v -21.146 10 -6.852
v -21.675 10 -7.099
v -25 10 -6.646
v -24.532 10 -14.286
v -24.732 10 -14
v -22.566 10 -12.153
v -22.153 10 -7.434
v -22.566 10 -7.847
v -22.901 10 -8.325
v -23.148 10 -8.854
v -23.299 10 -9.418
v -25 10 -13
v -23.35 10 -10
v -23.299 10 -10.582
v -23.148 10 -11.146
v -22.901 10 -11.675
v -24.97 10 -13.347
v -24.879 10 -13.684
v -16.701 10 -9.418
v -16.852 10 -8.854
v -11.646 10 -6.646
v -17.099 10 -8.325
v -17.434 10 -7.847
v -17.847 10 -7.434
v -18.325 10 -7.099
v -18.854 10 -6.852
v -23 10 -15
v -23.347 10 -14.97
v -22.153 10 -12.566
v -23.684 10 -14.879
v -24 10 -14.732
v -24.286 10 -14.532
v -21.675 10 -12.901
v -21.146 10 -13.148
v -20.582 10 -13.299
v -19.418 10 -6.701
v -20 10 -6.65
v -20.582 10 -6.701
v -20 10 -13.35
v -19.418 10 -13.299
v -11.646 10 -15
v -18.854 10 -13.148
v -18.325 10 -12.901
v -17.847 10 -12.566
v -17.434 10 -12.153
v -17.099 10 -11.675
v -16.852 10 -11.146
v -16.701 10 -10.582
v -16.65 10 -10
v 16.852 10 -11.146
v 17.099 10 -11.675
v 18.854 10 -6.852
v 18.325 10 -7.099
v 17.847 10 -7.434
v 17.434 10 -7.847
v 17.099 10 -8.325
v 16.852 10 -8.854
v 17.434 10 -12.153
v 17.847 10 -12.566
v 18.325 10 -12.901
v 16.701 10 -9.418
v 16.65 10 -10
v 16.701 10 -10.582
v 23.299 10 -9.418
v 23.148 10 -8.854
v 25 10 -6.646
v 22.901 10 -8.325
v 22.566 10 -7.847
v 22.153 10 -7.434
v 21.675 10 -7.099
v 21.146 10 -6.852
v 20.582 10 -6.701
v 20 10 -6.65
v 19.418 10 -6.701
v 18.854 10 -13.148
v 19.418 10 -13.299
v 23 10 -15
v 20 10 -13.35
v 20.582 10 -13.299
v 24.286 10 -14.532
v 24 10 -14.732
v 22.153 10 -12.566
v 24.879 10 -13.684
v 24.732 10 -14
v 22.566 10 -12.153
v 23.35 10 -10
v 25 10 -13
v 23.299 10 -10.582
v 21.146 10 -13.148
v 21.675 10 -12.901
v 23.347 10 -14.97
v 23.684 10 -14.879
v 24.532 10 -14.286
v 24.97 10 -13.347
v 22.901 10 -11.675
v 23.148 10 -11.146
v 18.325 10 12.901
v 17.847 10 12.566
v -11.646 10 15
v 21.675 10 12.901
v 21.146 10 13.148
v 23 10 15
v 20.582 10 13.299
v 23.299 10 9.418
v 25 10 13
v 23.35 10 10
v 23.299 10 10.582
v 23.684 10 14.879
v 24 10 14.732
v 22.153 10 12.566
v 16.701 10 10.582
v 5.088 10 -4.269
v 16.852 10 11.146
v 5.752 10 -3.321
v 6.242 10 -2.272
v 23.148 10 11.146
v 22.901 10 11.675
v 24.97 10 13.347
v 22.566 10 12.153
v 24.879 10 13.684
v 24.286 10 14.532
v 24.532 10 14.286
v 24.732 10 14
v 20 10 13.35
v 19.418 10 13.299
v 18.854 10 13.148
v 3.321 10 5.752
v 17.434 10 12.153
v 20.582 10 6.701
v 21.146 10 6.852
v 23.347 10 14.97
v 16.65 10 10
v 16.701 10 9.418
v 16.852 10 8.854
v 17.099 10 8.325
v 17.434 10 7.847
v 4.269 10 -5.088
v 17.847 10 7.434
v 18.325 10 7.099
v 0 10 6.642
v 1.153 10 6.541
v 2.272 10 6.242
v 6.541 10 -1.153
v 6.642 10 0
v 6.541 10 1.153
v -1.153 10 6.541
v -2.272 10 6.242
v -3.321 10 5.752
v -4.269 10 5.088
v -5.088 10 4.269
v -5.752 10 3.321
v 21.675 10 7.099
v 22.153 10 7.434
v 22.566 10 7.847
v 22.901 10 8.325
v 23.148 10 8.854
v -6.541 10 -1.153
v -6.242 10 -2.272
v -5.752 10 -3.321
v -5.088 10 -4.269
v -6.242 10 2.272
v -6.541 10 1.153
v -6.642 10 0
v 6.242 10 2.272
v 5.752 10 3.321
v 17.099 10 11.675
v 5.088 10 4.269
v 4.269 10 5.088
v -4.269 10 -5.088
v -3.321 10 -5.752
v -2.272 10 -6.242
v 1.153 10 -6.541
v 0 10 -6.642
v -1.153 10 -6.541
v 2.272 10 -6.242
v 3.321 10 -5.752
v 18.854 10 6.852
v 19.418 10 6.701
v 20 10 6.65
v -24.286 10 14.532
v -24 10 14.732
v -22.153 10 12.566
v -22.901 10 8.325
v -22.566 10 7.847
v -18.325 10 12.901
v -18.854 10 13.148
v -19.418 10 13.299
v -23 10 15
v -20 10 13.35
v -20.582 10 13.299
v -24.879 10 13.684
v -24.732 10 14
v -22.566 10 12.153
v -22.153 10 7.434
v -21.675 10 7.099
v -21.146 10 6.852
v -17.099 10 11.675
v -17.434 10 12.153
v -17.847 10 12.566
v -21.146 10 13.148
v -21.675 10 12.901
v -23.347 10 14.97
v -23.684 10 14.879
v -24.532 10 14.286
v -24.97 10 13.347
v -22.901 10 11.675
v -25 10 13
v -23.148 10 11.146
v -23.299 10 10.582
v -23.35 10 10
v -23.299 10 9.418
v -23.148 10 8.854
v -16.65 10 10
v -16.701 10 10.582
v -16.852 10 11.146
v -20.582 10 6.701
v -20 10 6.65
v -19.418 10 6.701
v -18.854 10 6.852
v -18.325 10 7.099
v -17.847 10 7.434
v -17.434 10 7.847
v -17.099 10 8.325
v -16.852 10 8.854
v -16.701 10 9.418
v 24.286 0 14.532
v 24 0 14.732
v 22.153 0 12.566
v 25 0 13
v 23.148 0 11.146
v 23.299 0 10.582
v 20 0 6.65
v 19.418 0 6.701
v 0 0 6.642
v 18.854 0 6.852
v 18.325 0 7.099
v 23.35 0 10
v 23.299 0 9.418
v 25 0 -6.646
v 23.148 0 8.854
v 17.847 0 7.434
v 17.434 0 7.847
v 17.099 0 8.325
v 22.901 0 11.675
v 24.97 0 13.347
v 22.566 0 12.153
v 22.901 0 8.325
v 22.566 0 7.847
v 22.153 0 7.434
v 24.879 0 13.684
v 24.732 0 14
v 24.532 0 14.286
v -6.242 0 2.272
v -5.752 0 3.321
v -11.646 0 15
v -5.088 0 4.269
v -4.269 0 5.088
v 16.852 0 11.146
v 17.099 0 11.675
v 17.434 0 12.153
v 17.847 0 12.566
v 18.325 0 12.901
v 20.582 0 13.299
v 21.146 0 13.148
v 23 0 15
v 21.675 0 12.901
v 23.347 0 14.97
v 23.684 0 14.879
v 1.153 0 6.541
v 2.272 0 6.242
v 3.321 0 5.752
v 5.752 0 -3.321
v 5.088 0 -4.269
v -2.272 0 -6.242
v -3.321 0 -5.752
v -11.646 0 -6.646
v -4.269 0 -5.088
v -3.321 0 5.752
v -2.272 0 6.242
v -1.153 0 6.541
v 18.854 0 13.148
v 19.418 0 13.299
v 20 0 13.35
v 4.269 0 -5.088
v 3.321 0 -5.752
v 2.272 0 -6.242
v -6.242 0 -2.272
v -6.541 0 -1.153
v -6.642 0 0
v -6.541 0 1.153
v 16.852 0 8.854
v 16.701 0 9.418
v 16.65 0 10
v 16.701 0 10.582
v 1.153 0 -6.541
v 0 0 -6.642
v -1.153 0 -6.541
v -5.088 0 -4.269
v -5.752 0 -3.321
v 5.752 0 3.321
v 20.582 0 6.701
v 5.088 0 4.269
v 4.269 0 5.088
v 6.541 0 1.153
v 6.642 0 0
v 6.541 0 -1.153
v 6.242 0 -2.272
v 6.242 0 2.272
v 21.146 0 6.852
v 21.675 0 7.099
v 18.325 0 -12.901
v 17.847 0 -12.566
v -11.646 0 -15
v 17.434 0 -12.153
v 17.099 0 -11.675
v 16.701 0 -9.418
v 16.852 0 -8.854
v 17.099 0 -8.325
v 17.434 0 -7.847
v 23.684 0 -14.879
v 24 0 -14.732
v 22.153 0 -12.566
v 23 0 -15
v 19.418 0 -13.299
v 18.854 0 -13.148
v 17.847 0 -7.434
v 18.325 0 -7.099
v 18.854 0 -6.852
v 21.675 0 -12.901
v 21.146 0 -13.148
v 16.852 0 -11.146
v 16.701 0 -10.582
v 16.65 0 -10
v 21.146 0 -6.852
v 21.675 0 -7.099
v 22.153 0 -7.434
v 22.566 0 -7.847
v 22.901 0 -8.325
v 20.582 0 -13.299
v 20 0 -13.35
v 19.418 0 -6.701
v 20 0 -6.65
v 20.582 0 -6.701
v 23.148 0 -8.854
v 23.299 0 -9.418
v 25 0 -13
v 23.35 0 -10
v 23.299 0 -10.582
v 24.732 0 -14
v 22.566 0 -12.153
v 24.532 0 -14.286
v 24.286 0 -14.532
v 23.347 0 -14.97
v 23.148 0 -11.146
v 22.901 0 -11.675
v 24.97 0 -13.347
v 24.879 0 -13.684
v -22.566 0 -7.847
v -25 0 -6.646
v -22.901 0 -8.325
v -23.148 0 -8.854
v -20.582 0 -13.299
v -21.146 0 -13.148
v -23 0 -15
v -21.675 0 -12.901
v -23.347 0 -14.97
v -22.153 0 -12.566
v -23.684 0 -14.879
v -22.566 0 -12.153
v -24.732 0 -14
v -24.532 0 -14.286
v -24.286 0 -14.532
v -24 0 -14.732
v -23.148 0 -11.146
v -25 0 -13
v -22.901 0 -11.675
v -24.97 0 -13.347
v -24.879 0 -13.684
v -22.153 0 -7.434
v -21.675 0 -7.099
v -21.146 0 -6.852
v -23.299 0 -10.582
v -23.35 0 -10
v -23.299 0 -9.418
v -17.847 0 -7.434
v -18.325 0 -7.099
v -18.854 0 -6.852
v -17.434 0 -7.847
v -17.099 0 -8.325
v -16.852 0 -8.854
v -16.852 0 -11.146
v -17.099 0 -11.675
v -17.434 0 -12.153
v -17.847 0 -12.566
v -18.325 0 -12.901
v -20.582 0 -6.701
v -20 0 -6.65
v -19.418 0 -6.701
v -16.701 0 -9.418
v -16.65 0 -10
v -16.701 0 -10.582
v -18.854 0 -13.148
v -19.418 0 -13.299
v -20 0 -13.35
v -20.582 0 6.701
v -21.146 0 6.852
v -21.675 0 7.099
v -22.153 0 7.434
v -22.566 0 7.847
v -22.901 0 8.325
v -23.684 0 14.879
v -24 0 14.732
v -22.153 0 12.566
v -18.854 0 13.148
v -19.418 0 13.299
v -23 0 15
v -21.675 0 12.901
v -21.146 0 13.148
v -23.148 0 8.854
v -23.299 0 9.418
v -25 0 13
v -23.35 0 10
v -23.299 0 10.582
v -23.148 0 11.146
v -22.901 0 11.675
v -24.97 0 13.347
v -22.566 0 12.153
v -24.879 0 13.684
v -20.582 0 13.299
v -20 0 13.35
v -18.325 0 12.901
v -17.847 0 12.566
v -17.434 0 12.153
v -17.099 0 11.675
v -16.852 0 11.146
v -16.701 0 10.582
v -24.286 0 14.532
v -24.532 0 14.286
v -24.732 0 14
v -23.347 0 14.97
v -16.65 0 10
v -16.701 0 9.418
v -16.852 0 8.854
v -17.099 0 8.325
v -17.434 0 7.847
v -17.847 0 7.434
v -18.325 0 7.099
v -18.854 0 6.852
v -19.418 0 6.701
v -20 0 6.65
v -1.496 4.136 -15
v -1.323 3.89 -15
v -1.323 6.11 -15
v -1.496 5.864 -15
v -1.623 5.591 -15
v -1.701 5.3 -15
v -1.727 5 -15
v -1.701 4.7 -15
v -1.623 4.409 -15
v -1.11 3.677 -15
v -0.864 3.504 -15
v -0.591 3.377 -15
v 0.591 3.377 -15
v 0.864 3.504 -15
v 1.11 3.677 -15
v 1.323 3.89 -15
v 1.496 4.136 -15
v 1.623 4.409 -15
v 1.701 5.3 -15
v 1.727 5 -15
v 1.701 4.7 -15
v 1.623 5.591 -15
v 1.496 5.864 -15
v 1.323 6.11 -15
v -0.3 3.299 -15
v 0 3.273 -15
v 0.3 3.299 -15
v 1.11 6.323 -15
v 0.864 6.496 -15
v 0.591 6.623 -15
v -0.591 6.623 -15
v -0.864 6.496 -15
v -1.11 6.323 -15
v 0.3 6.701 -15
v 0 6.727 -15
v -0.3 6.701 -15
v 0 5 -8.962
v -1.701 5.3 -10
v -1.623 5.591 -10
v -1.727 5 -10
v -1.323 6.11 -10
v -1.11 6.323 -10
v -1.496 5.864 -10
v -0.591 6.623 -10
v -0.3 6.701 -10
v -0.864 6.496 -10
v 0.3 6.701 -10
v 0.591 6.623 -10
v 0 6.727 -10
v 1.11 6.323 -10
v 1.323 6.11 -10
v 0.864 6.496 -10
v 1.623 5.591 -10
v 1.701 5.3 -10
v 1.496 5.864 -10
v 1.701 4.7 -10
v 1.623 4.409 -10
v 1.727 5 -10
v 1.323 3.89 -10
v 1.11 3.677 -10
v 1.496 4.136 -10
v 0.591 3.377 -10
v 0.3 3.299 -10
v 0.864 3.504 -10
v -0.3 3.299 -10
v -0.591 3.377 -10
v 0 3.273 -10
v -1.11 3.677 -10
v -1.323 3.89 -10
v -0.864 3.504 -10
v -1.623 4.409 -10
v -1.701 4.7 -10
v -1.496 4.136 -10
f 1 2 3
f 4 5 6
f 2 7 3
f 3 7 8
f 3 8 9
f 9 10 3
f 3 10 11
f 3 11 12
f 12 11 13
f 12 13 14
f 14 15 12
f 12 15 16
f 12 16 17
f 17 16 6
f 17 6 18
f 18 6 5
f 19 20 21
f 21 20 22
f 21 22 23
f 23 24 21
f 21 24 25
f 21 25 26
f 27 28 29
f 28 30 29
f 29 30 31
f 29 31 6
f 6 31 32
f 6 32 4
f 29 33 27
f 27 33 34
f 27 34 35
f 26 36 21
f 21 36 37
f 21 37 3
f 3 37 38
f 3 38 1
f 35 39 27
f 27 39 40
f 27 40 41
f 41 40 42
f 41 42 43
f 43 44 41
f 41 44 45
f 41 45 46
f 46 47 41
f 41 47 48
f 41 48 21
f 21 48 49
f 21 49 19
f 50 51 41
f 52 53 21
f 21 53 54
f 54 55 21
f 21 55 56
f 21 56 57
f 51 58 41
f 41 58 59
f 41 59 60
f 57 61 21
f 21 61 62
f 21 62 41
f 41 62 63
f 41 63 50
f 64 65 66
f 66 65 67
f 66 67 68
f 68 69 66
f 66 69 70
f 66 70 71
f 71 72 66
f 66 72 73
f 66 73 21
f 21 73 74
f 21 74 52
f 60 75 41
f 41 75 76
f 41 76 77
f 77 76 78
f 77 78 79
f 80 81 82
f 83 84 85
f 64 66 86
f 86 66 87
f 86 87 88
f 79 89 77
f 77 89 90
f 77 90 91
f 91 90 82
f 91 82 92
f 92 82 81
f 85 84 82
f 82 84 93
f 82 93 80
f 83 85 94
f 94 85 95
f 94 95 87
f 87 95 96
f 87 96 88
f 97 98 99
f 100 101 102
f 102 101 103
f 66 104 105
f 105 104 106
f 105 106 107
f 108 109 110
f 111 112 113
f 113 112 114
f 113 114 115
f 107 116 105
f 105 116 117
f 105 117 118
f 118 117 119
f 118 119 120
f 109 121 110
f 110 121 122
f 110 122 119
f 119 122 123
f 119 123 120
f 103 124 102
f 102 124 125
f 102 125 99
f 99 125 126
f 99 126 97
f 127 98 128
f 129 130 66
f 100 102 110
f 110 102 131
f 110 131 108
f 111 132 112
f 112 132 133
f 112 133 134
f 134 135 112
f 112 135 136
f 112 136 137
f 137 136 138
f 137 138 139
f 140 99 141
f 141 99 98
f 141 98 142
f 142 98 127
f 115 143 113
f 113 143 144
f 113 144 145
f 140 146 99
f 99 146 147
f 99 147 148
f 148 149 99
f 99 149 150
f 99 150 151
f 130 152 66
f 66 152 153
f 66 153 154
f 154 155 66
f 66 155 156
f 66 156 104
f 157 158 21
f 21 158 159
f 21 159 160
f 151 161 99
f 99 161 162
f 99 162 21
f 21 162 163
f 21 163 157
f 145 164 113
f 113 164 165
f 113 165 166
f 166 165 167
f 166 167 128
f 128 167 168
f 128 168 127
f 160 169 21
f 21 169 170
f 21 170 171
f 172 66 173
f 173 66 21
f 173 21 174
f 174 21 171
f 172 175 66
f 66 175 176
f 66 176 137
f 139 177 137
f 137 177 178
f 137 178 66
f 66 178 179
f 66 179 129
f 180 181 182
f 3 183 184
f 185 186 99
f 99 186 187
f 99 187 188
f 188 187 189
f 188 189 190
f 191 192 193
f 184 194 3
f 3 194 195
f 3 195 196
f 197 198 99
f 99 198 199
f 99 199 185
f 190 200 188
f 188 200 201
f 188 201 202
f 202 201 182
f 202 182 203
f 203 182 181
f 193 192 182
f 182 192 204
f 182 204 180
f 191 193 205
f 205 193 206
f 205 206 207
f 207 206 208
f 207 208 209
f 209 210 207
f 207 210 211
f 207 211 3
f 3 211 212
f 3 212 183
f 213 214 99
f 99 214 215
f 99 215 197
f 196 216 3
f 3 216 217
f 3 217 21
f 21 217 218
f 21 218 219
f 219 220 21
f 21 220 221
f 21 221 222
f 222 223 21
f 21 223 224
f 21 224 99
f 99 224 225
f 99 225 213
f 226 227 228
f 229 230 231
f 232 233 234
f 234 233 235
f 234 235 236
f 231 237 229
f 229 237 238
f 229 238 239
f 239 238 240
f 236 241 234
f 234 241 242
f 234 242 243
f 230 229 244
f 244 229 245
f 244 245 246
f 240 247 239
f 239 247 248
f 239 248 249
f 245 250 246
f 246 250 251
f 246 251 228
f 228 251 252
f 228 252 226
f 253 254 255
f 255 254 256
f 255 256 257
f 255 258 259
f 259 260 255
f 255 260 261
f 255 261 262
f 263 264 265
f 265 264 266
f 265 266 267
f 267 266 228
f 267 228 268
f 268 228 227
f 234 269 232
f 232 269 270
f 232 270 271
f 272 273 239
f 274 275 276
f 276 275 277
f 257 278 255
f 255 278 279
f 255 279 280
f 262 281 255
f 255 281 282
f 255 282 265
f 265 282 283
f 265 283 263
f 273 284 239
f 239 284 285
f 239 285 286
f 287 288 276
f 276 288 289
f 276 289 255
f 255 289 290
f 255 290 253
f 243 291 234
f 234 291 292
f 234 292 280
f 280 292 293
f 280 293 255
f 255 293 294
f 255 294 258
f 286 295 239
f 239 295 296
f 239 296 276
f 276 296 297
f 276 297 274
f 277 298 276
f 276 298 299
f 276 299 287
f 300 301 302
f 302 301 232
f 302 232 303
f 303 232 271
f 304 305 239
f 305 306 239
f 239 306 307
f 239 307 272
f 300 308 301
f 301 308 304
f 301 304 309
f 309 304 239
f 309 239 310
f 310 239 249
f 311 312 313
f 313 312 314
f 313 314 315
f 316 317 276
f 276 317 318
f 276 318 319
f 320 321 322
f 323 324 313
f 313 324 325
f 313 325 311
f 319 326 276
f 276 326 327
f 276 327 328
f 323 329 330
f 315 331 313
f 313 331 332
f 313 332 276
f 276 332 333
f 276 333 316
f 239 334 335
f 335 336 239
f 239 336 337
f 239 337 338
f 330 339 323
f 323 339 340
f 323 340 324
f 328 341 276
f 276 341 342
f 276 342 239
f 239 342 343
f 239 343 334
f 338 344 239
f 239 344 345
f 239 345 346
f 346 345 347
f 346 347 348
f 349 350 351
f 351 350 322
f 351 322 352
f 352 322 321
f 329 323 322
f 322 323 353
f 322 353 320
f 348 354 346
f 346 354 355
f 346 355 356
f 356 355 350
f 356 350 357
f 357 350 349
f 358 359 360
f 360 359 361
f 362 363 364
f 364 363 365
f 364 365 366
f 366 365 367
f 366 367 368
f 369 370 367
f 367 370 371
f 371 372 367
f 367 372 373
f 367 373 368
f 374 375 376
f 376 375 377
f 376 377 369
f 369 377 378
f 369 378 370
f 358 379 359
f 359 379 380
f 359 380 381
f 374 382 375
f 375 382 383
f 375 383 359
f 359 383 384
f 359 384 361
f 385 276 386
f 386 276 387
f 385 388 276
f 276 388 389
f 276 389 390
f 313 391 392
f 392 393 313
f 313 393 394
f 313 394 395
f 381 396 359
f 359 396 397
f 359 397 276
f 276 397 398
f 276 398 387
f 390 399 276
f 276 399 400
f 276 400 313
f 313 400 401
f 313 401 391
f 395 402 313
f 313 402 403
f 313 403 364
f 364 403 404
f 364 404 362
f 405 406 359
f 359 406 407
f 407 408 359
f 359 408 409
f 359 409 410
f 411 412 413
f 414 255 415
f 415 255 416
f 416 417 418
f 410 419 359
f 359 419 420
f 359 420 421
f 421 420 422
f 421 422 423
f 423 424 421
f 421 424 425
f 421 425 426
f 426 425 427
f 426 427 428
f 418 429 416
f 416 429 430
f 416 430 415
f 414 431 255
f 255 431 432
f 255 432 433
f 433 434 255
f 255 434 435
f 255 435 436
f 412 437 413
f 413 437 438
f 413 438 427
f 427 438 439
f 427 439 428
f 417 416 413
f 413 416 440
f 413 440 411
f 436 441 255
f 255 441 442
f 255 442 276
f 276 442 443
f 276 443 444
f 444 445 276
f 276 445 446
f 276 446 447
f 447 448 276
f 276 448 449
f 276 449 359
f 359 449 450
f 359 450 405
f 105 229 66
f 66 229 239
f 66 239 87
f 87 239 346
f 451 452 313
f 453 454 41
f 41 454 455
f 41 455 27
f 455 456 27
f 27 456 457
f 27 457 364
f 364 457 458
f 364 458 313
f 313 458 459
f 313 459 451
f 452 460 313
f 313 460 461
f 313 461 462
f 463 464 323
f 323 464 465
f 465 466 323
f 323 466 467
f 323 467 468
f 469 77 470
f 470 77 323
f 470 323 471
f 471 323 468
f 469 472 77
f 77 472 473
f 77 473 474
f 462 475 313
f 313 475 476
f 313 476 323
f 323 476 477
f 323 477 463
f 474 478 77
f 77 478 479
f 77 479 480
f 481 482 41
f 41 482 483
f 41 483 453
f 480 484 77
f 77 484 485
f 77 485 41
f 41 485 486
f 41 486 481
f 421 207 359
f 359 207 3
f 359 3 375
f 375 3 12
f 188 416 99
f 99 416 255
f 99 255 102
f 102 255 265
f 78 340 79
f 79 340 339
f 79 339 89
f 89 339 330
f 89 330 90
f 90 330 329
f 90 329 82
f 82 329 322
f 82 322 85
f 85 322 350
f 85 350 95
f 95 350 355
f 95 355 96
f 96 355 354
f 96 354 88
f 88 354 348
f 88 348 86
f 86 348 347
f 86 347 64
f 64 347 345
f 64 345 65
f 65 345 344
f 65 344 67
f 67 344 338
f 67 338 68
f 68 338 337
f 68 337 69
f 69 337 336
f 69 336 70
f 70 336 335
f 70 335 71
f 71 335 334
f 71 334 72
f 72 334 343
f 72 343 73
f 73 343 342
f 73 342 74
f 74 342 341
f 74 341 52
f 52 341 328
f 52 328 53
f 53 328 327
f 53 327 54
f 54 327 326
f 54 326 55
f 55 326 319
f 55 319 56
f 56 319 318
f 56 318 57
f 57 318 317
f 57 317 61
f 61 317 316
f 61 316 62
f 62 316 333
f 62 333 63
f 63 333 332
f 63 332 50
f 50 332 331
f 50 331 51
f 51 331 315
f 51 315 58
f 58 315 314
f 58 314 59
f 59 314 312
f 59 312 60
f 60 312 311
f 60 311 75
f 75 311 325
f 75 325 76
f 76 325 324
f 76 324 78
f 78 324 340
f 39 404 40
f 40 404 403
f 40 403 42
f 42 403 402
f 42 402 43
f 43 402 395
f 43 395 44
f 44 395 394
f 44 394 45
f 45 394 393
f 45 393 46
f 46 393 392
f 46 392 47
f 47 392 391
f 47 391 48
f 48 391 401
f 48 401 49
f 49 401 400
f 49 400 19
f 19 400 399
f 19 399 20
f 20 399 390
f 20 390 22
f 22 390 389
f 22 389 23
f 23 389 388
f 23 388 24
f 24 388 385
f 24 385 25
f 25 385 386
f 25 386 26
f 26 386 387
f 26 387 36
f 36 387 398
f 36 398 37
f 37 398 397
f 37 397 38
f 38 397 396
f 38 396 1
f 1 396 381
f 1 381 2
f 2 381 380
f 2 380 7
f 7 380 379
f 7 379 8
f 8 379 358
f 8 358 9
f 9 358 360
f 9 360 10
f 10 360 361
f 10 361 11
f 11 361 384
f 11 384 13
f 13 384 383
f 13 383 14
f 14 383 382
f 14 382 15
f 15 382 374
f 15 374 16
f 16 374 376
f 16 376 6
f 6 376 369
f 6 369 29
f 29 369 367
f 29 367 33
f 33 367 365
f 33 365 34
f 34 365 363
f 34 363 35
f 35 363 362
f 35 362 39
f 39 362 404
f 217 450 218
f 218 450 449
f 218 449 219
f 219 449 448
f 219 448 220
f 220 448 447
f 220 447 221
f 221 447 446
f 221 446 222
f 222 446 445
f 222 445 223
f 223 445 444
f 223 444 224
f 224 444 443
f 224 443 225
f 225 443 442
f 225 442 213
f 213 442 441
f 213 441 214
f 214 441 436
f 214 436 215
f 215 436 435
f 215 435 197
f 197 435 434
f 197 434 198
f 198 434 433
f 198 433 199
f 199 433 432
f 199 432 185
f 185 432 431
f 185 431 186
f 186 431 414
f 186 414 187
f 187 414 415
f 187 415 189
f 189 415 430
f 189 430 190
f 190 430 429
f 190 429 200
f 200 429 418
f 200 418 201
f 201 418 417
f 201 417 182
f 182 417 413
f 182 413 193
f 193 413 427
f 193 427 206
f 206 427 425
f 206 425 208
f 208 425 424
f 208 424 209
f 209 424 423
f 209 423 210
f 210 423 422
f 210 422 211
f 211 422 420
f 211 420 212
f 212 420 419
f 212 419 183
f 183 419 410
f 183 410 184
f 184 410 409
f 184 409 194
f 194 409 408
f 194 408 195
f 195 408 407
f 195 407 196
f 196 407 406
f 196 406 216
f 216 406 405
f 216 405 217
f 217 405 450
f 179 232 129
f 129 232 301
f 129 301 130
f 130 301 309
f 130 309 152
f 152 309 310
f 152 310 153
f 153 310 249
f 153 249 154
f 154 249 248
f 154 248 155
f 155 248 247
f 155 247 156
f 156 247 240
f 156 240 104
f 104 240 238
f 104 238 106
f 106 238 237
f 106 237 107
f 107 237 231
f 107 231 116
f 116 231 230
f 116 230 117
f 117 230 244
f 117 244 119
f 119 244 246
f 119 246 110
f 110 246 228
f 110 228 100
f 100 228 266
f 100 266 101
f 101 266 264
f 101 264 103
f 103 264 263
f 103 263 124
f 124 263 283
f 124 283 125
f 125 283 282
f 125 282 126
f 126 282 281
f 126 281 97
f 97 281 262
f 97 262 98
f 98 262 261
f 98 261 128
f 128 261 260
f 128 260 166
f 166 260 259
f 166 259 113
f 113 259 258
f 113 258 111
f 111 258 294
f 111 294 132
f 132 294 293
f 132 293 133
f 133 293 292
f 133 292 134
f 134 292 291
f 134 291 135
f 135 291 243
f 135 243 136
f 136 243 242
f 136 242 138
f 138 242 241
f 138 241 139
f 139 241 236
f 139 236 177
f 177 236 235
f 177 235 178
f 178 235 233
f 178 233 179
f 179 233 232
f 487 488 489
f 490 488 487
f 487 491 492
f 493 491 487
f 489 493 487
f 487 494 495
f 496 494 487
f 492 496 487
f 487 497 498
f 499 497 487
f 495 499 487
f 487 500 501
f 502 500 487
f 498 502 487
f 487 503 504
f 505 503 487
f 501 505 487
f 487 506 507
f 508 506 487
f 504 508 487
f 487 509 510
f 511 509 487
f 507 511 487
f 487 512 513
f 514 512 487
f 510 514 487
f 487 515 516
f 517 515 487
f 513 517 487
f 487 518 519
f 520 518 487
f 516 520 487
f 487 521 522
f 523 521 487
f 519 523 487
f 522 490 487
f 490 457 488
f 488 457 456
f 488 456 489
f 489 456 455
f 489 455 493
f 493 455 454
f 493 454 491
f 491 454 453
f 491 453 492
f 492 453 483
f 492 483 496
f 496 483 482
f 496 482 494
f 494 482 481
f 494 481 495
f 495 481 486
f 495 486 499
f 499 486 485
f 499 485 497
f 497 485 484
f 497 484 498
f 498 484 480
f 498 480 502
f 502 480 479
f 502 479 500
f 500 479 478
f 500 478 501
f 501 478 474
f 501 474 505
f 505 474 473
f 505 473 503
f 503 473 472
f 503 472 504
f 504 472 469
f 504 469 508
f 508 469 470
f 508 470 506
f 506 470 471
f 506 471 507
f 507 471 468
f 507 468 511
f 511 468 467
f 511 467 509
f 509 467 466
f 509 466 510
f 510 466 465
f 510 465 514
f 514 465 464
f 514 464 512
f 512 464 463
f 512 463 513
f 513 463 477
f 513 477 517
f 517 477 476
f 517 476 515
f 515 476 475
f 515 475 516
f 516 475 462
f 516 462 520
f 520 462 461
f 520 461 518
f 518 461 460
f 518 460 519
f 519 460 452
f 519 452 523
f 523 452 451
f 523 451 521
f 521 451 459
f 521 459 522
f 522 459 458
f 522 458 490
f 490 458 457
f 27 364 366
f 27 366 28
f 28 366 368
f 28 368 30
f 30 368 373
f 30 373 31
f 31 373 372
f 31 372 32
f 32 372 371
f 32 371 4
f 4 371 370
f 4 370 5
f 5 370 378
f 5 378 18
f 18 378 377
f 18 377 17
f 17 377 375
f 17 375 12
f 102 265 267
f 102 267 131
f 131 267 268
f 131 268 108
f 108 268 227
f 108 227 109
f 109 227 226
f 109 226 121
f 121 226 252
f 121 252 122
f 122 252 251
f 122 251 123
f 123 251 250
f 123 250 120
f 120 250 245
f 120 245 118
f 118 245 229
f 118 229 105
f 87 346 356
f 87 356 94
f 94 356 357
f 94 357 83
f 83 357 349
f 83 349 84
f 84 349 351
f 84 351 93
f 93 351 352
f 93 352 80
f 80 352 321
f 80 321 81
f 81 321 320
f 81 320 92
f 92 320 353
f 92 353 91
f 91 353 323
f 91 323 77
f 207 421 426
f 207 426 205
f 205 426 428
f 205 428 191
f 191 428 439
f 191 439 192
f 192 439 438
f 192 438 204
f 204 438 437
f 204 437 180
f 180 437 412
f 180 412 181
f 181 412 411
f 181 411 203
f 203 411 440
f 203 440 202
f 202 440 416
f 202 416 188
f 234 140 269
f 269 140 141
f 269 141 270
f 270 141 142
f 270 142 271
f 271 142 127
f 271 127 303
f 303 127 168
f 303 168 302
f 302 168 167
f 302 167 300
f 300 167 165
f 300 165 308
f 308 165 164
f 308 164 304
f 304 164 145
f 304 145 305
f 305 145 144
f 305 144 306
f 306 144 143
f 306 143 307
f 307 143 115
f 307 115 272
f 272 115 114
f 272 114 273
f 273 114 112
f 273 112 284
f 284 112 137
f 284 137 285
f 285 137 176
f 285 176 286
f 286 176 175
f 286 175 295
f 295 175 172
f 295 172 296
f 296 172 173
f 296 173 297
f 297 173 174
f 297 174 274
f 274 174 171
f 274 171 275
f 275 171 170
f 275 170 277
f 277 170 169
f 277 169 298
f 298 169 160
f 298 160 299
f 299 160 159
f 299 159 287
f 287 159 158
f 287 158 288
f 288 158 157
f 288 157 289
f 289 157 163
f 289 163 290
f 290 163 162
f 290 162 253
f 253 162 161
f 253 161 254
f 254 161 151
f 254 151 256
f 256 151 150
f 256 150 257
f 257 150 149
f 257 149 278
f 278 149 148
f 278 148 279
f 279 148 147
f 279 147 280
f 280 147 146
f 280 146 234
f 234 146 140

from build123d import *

# Parameters (mm, degrees)
SKETCH1_W                 = 50
SKETCH1_H                 = 30
SKETCH1_R                 = 3.35
BOSS_EXTRUDE2_DEPTH       = 10
F_8_32_TAPPED_HOLE3_D     = 3.4544
F_8_32_TAPPED_HOLE3_DEPTH = 5
F_8_32_TAPPED_HOLE3_TIP   = 1.037806461
FILLET3_R                 = 2
FILLET4_R                 = 2
F_0_535_40_TAPPED_HOLE2_D = 13.2842


with BuildPart() as part:
    # Sketch1 → Boss-Extrude2 (new body)
    with BuildSketch(Plane(origin=(0, 0, 0), x_dir=(1, 0, 0), z_dir=(0, 1, 0))):
        Rectangle(SKETCH1_W, SKETCH1_H)
        with Locations((-20, 10)):
            Circle(SKETCH1_R, mode=Mode.SUBTRACT)
        with Locations((20, 10)):
            Circle(SKETCH1_R, mode=Mode.SUBTRACT)
        with Locations((-20, -10)):
            Circle(SKETCH1_R, mode=Mode.SUBTRACT)
        with Locations((20, -10)):
            Circle(SKETCH1_R, mode=Mode.SUBTRACT)
    extrude(amount=BOSS_EXTRUDE2_DEPTH)

    # #8-32 Tapped Hole3
    with Locations(Plane(origin=(0, 5, -15), x_dir=(-1, 0, 0), z_dir=(0, 0, -1))):
        with Locations((0, 0)):
            Hole(F_8_32_TAPPED_HOLE3_D / 2, depth=F_8_32_TAPPED_HOLE3_DEPTH)
            with Locations((0, 0, -(F_8_32_TAPPED_HOLE3_DEPTH + F_8_32_TAPPED_HOLE3_TIP / 2))):  # 118° drill point
                Cone(0, F_8_32_TAPPED_HOLE3_D / 2, F_8_32_TAPPED_HOLE3_TIP, mode=Mode.SUBTRACT)

    # Fillet3
    fillet3_edges = [part.edges().sort_by_distance(p)[0] for p in [
        (25, 5, 15),
        (-25, 5, -15),
        (25, 5, -15),
    ]]
    fillet(fillet3_edges, radius=FILLET3_R)

    # Fillet4
    fillet4_edges = [part.edges().sort_by_distance(p)[0] for p in [
        (-25, 5, 15),
    ]]
    fillet(fillet4_edges, radius=FILLET4_R)

    # 0.535-40 Tapped Hole2 (through all)
    with Locations(Plane.ZX.offset(10)):
        with Locations((0, 0)):
            Hole(F_0_535_40_TAPPED_HOLE2_D / 2)


solid = part.part
